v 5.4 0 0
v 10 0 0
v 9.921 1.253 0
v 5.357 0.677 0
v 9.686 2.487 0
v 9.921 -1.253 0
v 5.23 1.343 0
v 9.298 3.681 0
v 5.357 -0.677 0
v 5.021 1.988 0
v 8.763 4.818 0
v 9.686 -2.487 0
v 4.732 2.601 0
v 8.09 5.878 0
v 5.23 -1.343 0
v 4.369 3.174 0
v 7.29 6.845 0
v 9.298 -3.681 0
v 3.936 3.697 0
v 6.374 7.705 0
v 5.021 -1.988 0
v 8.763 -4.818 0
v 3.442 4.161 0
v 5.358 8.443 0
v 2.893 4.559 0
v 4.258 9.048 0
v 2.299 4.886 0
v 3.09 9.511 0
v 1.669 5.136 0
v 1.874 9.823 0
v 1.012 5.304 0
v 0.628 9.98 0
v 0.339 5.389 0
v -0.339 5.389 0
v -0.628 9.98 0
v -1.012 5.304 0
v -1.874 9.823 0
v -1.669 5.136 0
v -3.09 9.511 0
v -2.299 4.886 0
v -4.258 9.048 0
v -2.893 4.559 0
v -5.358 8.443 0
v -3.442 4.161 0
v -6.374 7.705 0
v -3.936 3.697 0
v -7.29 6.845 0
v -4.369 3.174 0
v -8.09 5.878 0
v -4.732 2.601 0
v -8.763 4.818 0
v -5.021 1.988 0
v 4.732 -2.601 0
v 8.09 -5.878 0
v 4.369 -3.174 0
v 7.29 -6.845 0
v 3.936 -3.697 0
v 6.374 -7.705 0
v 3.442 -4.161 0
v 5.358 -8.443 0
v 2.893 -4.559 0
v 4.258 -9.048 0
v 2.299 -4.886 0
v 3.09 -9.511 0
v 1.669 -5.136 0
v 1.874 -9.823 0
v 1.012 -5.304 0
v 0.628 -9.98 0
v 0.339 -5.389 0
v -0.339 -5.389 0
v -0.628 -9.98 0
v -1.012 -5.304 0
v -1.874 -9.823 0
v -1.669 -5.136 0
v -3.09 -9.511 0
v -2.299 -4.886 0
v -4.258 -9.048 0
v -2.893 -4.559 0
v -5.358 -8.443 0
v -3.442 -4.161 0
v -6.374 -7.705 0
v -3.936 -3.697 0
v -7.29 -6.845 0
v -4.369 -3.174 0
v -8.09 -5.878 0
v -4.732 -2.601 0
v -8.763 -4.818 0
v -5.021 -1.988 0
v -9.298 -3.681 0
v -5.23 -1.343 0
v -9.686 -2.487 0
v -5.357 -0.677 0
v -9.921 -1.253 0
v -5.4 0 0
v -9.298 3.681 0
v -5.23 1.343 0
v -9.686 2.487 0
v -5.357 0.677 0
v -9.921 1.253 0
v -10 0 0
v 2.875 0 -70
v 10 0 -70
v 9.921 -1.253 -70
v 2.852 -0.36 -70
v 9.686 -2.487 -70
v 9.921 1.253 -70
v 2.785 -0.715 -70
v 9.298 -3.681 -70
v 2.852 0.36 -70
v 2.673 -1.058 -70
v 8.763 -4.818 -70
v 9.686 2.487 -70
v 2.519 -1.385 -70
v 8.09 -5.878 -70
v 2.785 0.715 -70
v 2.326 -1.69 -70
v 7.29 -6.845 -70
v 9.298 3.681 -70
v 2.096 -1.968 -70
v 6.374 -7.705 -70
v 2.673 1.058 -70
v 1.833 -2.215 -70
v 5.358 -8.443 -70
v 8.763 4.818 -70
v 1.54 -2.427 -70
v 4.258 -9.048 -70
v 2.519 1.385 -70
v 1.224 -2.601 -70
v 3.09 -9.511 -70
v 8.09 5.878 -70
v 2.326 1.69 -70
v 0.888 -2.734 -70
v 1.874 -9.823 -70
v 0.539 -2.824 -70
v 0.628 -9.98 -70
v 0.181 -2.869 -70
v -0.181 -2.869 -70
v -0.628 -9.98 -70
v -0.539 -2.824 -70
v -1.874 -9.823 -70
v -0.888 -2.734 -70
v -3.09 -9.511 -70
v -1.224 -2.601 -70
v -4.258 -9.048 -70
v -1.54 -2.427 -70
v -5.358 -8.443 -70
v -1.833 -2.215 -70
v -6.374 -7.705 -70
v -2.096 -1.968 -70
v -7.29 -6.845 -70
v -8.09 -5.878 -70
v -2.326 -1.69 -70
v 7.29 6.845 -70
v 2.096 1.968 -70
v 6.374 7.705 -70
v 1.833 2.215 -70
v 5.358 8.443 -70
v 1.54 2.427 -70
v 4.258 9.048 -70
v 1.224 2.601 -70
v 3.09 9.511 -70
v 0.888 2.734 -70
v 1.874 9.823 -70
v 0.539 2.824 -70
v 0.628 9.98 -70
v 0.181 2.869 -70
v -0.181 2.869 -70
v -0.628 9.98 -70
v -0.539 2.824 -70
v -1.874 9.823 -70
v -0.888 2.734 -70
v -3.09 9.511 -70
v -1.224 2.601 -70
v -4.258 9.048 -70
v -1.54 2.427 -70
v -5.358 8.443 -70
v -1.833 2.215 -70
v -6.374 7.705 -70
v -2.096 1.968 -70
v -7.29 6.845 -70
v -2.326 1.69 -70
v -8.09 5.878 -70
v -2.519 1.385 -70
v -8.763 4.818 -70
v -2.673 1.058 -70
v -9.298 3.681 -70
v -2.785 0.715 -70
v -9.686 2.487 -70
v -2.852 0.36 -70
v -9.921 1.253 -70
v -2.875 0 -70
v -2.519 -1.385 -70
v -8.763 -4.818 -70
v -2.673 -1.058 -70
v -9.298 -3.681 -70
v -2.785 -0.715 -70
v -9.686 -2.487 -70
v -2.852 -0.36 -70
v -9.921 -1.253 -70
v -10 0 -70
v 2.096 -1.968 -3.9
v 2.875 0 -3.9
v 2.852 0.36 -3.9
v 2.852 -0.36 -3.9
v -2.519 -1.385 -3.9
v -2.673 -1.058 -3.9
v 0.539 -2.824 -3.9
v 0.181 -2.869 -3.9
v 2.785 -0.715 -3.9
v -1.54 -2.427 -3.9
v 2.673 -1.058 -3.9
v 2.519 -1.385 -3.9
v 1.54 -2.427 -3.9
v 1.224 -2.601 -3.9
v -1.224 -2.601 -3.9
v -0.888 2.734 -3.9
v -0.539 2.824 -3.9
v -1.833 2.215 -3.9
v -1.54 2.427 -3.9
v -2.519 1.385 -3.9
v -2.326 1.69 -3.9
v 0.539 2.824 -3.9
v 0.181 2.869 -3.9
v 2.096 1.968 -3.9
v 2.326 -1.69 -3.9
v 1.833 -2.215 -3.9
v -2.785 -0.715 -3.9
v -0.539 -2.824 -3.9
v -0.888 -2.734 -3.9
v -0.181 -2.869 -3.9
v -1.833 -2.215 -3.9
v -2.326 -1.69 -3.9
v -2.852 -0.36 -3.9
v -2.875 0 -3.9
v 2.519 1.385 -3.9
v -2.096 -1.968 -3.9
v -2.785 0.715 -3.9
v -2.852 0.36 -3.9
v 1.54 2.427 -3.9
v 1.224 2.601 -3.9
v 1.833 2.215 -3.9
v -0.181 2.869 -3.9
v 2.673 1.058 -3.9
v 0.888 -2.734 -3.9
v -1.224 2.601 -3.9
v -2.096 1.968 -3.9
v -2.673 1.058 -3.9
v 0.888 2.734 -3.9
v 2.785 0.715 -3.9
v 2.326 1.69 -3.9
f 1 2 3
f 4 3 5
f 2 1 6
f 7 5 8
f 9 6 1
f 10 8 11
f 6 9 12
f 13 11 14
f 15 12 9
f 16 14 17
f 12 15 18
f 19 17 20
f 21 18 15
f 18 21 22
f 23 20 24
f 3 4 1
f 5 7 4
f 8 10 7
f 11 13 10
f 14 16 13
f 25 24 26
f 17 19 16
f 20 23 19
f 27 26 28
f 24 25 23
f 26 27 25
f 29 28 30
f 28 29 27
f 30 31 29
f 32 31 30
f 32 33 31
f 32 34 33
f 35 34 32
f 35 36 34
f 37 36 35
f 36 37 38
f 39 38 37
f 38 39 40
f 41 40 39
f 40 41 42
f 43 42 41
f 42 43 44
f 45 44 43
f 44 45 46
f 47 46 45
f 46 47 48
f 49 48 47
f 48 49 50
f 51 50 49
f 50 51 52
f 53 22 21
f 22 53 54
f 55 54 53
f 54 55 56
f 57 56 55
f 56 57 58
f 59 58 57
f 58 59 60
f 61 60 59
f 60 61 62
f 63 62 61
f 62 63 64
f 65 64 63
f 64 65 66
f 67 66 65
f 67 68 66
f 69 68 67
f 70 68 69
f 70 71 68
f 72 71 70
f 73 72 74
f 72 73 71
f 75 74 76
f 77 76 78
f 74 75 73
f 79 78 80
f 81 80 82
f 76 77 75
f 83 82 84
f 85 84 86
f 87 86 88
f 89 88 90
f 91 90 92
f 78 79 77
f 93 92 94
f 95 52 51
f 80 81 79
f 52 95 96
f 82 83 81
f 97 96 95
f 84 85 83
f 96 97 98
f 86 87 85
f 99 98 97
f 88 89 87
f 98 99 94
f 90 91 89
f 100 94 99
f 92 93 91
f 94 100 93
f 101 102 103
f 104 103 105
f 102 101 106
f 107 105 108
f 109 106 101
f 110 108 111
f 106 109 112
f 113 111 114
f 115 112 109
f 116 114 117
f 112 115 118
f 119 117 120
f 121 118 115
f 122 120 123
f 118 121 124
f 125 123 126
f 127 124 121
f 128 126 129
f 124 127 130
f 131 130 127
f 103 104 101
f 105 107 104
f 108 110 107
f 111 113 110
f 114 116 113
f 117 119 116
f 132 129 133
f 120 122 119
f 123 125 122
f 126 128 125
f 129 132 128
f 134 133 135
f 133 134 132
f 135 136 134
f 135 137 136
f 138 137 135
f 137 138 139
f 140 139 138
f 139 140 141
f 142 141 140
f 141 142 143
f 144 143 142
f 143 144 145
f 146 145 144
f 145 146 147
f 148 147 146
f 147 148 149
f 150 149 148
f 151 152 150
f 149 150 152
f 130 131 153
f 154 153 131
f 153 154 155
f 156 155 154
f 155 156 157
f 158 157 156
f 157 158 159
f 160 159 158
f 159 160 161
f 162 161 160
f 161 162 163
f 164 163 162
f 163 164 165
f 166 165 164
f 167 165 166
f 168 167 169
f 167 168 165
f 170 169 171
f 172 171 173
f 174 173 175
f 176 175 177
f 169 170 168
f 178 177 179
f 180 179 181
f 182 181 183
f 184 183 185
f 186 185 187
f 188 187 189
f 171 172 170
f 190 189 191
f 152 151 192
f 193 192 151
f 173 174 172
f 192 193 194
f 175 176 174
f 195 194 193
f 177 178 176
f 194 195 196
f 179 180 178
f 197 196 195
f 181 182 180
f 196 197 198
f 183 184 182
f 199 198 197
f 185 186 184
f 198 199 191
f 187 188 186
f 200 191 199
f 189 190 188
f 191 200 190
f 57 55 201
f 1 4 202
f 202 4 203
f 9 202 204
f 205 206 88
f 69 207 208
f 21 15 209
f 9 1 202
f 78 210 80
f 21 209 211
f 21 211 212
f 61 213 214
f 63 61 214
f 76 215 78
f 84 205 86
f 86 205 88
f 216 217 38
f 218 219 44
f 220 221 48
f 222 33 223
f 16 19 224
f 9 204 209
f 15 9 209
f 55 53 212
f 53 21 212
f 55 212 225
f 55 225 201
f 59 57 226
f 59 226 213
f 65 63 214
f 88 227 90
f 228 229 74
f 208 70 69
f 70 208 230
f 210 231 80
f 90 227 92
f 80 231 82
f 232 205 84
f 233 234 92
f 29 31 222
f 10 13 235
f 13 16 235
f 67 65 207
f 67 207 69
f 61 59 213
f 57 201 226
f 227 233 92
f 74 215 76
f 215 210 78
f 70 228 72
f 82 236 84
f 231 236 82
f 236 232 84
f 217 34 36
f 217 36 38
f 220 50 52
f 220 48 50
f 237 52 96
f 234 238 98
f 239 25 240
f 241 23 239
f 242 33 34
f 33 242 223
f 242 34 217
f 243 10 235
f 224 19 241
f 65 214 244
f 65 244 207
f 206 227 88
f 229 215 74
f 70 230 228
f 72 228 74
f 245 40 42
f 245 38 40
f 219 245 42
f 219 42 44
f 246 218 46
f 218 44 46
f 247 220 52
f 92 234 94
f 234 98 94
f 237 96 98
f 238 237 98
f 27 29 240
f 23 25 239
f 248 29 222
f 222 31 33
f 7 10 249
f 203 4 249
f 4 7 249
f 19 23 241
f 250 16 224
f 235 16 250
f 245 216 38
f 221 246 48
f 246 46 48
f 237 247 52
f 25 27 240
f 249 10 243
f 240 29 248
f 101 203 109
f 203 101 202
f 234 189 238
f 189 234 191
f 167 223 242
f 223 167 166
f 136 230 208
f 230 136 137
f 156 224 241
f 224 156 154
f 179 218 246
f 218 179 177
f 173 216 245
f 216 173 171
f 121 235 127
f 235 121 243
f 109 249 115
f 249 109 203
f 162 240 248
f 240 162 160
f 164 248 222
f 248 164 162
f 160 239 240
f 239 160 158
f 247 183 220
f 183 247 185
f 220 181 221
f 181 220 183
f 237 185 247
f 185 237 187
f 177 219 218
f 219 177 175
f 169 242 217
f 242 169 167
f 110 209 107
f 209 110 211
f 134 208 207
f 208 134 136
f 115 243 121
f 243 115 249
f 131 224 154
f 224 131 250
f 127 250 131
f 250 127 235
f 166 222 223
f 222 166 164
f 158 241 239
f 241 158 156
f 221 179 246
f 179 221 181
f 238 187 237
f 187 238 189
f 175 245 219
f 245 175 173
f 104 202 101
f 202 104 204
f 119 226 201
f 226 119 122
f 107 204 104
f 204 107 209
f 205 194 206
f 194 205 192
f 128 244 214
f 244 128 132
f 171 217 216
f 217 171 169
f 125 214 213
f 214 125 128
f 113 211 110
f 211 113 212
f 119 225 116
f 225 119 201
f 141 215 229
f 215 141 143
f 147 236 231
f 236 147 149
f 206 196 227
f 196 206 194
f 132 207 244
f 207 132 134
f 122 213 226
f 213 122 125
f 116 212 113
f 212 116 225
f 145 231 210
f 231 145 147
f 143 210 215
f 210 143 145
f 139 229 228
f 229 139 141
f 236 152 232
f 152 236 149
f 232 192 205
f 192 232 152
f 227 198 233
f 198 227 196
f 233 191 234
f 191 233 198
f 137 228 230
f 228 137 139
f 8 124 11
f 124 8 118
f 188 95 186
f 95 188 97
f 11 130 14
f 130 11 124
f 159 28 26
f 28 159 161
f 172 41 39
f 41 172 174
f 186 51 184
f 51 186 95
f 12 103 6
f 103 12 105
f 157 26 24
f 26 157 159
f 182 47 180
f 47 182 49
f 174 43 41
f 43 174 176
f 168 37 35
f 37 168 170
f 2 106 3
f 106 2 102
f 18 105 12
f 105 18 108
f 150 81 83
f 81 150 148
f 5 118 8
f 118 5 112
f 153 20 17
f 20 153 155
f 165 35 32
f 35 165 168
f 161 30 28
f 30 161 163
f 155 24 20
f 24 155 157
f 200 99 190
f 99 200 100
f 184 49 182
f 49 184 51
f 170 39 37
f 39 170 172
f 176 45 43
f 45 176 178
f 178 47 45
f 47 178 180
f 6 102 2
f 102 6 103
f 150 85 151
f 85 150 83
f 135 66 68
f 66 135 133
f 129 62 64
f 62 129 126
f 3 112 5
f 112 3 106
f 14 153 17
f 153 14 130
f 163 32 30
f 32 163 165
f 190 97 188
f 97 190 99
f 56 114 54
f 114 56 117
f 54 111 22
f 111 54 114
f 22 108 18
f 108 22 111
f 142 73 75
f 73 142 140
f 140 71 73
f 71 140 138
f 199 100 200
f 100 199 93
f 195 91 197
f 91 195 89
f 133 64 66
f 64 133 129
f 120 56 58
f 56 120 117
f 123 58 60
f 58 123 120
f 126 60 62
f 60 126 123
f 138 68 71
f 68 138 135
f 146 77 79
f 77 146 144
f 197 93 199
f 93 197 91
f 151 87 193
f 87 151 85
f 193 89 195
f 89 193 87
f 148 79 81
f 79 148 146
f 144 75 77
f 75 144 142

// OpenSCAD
$fn = 50;


difference() {
	union() {
		translate(v = [0, 0, -70.0000000000]) {
			cylinder(h = 70, r = 10.0000000000);
		}
		cylinder(h = 0, r = 20.0000000000);
	}
	union() {
		translate(v = [0, 0, 0]) {
			rotate(a = [0, 0, 0]) {
				difference() {
					union() {
						#translate(v = [0, 0, -70.0000000000]) {
							cylinder(h = 70, r = 2.6000000000);
						}
						#translate(v = [0, 0, -3.9000000000]) {
							cylinder(h = 3.9000000000, r = 10.0000000000, r1 = 2.8750000000, r2 = 5.4000000000);
						}
						#translate(v = [0, 0, -70.0000000000]) {
							cylinder(h = 70, r = 2.8750000000);
						}
						#translate(v = [0, 0, -70.0000000000]) {
							cylinder(h = 70, r = 2.6000000000);
						}
					}
					union();
				}
			}
		}
	}
}
